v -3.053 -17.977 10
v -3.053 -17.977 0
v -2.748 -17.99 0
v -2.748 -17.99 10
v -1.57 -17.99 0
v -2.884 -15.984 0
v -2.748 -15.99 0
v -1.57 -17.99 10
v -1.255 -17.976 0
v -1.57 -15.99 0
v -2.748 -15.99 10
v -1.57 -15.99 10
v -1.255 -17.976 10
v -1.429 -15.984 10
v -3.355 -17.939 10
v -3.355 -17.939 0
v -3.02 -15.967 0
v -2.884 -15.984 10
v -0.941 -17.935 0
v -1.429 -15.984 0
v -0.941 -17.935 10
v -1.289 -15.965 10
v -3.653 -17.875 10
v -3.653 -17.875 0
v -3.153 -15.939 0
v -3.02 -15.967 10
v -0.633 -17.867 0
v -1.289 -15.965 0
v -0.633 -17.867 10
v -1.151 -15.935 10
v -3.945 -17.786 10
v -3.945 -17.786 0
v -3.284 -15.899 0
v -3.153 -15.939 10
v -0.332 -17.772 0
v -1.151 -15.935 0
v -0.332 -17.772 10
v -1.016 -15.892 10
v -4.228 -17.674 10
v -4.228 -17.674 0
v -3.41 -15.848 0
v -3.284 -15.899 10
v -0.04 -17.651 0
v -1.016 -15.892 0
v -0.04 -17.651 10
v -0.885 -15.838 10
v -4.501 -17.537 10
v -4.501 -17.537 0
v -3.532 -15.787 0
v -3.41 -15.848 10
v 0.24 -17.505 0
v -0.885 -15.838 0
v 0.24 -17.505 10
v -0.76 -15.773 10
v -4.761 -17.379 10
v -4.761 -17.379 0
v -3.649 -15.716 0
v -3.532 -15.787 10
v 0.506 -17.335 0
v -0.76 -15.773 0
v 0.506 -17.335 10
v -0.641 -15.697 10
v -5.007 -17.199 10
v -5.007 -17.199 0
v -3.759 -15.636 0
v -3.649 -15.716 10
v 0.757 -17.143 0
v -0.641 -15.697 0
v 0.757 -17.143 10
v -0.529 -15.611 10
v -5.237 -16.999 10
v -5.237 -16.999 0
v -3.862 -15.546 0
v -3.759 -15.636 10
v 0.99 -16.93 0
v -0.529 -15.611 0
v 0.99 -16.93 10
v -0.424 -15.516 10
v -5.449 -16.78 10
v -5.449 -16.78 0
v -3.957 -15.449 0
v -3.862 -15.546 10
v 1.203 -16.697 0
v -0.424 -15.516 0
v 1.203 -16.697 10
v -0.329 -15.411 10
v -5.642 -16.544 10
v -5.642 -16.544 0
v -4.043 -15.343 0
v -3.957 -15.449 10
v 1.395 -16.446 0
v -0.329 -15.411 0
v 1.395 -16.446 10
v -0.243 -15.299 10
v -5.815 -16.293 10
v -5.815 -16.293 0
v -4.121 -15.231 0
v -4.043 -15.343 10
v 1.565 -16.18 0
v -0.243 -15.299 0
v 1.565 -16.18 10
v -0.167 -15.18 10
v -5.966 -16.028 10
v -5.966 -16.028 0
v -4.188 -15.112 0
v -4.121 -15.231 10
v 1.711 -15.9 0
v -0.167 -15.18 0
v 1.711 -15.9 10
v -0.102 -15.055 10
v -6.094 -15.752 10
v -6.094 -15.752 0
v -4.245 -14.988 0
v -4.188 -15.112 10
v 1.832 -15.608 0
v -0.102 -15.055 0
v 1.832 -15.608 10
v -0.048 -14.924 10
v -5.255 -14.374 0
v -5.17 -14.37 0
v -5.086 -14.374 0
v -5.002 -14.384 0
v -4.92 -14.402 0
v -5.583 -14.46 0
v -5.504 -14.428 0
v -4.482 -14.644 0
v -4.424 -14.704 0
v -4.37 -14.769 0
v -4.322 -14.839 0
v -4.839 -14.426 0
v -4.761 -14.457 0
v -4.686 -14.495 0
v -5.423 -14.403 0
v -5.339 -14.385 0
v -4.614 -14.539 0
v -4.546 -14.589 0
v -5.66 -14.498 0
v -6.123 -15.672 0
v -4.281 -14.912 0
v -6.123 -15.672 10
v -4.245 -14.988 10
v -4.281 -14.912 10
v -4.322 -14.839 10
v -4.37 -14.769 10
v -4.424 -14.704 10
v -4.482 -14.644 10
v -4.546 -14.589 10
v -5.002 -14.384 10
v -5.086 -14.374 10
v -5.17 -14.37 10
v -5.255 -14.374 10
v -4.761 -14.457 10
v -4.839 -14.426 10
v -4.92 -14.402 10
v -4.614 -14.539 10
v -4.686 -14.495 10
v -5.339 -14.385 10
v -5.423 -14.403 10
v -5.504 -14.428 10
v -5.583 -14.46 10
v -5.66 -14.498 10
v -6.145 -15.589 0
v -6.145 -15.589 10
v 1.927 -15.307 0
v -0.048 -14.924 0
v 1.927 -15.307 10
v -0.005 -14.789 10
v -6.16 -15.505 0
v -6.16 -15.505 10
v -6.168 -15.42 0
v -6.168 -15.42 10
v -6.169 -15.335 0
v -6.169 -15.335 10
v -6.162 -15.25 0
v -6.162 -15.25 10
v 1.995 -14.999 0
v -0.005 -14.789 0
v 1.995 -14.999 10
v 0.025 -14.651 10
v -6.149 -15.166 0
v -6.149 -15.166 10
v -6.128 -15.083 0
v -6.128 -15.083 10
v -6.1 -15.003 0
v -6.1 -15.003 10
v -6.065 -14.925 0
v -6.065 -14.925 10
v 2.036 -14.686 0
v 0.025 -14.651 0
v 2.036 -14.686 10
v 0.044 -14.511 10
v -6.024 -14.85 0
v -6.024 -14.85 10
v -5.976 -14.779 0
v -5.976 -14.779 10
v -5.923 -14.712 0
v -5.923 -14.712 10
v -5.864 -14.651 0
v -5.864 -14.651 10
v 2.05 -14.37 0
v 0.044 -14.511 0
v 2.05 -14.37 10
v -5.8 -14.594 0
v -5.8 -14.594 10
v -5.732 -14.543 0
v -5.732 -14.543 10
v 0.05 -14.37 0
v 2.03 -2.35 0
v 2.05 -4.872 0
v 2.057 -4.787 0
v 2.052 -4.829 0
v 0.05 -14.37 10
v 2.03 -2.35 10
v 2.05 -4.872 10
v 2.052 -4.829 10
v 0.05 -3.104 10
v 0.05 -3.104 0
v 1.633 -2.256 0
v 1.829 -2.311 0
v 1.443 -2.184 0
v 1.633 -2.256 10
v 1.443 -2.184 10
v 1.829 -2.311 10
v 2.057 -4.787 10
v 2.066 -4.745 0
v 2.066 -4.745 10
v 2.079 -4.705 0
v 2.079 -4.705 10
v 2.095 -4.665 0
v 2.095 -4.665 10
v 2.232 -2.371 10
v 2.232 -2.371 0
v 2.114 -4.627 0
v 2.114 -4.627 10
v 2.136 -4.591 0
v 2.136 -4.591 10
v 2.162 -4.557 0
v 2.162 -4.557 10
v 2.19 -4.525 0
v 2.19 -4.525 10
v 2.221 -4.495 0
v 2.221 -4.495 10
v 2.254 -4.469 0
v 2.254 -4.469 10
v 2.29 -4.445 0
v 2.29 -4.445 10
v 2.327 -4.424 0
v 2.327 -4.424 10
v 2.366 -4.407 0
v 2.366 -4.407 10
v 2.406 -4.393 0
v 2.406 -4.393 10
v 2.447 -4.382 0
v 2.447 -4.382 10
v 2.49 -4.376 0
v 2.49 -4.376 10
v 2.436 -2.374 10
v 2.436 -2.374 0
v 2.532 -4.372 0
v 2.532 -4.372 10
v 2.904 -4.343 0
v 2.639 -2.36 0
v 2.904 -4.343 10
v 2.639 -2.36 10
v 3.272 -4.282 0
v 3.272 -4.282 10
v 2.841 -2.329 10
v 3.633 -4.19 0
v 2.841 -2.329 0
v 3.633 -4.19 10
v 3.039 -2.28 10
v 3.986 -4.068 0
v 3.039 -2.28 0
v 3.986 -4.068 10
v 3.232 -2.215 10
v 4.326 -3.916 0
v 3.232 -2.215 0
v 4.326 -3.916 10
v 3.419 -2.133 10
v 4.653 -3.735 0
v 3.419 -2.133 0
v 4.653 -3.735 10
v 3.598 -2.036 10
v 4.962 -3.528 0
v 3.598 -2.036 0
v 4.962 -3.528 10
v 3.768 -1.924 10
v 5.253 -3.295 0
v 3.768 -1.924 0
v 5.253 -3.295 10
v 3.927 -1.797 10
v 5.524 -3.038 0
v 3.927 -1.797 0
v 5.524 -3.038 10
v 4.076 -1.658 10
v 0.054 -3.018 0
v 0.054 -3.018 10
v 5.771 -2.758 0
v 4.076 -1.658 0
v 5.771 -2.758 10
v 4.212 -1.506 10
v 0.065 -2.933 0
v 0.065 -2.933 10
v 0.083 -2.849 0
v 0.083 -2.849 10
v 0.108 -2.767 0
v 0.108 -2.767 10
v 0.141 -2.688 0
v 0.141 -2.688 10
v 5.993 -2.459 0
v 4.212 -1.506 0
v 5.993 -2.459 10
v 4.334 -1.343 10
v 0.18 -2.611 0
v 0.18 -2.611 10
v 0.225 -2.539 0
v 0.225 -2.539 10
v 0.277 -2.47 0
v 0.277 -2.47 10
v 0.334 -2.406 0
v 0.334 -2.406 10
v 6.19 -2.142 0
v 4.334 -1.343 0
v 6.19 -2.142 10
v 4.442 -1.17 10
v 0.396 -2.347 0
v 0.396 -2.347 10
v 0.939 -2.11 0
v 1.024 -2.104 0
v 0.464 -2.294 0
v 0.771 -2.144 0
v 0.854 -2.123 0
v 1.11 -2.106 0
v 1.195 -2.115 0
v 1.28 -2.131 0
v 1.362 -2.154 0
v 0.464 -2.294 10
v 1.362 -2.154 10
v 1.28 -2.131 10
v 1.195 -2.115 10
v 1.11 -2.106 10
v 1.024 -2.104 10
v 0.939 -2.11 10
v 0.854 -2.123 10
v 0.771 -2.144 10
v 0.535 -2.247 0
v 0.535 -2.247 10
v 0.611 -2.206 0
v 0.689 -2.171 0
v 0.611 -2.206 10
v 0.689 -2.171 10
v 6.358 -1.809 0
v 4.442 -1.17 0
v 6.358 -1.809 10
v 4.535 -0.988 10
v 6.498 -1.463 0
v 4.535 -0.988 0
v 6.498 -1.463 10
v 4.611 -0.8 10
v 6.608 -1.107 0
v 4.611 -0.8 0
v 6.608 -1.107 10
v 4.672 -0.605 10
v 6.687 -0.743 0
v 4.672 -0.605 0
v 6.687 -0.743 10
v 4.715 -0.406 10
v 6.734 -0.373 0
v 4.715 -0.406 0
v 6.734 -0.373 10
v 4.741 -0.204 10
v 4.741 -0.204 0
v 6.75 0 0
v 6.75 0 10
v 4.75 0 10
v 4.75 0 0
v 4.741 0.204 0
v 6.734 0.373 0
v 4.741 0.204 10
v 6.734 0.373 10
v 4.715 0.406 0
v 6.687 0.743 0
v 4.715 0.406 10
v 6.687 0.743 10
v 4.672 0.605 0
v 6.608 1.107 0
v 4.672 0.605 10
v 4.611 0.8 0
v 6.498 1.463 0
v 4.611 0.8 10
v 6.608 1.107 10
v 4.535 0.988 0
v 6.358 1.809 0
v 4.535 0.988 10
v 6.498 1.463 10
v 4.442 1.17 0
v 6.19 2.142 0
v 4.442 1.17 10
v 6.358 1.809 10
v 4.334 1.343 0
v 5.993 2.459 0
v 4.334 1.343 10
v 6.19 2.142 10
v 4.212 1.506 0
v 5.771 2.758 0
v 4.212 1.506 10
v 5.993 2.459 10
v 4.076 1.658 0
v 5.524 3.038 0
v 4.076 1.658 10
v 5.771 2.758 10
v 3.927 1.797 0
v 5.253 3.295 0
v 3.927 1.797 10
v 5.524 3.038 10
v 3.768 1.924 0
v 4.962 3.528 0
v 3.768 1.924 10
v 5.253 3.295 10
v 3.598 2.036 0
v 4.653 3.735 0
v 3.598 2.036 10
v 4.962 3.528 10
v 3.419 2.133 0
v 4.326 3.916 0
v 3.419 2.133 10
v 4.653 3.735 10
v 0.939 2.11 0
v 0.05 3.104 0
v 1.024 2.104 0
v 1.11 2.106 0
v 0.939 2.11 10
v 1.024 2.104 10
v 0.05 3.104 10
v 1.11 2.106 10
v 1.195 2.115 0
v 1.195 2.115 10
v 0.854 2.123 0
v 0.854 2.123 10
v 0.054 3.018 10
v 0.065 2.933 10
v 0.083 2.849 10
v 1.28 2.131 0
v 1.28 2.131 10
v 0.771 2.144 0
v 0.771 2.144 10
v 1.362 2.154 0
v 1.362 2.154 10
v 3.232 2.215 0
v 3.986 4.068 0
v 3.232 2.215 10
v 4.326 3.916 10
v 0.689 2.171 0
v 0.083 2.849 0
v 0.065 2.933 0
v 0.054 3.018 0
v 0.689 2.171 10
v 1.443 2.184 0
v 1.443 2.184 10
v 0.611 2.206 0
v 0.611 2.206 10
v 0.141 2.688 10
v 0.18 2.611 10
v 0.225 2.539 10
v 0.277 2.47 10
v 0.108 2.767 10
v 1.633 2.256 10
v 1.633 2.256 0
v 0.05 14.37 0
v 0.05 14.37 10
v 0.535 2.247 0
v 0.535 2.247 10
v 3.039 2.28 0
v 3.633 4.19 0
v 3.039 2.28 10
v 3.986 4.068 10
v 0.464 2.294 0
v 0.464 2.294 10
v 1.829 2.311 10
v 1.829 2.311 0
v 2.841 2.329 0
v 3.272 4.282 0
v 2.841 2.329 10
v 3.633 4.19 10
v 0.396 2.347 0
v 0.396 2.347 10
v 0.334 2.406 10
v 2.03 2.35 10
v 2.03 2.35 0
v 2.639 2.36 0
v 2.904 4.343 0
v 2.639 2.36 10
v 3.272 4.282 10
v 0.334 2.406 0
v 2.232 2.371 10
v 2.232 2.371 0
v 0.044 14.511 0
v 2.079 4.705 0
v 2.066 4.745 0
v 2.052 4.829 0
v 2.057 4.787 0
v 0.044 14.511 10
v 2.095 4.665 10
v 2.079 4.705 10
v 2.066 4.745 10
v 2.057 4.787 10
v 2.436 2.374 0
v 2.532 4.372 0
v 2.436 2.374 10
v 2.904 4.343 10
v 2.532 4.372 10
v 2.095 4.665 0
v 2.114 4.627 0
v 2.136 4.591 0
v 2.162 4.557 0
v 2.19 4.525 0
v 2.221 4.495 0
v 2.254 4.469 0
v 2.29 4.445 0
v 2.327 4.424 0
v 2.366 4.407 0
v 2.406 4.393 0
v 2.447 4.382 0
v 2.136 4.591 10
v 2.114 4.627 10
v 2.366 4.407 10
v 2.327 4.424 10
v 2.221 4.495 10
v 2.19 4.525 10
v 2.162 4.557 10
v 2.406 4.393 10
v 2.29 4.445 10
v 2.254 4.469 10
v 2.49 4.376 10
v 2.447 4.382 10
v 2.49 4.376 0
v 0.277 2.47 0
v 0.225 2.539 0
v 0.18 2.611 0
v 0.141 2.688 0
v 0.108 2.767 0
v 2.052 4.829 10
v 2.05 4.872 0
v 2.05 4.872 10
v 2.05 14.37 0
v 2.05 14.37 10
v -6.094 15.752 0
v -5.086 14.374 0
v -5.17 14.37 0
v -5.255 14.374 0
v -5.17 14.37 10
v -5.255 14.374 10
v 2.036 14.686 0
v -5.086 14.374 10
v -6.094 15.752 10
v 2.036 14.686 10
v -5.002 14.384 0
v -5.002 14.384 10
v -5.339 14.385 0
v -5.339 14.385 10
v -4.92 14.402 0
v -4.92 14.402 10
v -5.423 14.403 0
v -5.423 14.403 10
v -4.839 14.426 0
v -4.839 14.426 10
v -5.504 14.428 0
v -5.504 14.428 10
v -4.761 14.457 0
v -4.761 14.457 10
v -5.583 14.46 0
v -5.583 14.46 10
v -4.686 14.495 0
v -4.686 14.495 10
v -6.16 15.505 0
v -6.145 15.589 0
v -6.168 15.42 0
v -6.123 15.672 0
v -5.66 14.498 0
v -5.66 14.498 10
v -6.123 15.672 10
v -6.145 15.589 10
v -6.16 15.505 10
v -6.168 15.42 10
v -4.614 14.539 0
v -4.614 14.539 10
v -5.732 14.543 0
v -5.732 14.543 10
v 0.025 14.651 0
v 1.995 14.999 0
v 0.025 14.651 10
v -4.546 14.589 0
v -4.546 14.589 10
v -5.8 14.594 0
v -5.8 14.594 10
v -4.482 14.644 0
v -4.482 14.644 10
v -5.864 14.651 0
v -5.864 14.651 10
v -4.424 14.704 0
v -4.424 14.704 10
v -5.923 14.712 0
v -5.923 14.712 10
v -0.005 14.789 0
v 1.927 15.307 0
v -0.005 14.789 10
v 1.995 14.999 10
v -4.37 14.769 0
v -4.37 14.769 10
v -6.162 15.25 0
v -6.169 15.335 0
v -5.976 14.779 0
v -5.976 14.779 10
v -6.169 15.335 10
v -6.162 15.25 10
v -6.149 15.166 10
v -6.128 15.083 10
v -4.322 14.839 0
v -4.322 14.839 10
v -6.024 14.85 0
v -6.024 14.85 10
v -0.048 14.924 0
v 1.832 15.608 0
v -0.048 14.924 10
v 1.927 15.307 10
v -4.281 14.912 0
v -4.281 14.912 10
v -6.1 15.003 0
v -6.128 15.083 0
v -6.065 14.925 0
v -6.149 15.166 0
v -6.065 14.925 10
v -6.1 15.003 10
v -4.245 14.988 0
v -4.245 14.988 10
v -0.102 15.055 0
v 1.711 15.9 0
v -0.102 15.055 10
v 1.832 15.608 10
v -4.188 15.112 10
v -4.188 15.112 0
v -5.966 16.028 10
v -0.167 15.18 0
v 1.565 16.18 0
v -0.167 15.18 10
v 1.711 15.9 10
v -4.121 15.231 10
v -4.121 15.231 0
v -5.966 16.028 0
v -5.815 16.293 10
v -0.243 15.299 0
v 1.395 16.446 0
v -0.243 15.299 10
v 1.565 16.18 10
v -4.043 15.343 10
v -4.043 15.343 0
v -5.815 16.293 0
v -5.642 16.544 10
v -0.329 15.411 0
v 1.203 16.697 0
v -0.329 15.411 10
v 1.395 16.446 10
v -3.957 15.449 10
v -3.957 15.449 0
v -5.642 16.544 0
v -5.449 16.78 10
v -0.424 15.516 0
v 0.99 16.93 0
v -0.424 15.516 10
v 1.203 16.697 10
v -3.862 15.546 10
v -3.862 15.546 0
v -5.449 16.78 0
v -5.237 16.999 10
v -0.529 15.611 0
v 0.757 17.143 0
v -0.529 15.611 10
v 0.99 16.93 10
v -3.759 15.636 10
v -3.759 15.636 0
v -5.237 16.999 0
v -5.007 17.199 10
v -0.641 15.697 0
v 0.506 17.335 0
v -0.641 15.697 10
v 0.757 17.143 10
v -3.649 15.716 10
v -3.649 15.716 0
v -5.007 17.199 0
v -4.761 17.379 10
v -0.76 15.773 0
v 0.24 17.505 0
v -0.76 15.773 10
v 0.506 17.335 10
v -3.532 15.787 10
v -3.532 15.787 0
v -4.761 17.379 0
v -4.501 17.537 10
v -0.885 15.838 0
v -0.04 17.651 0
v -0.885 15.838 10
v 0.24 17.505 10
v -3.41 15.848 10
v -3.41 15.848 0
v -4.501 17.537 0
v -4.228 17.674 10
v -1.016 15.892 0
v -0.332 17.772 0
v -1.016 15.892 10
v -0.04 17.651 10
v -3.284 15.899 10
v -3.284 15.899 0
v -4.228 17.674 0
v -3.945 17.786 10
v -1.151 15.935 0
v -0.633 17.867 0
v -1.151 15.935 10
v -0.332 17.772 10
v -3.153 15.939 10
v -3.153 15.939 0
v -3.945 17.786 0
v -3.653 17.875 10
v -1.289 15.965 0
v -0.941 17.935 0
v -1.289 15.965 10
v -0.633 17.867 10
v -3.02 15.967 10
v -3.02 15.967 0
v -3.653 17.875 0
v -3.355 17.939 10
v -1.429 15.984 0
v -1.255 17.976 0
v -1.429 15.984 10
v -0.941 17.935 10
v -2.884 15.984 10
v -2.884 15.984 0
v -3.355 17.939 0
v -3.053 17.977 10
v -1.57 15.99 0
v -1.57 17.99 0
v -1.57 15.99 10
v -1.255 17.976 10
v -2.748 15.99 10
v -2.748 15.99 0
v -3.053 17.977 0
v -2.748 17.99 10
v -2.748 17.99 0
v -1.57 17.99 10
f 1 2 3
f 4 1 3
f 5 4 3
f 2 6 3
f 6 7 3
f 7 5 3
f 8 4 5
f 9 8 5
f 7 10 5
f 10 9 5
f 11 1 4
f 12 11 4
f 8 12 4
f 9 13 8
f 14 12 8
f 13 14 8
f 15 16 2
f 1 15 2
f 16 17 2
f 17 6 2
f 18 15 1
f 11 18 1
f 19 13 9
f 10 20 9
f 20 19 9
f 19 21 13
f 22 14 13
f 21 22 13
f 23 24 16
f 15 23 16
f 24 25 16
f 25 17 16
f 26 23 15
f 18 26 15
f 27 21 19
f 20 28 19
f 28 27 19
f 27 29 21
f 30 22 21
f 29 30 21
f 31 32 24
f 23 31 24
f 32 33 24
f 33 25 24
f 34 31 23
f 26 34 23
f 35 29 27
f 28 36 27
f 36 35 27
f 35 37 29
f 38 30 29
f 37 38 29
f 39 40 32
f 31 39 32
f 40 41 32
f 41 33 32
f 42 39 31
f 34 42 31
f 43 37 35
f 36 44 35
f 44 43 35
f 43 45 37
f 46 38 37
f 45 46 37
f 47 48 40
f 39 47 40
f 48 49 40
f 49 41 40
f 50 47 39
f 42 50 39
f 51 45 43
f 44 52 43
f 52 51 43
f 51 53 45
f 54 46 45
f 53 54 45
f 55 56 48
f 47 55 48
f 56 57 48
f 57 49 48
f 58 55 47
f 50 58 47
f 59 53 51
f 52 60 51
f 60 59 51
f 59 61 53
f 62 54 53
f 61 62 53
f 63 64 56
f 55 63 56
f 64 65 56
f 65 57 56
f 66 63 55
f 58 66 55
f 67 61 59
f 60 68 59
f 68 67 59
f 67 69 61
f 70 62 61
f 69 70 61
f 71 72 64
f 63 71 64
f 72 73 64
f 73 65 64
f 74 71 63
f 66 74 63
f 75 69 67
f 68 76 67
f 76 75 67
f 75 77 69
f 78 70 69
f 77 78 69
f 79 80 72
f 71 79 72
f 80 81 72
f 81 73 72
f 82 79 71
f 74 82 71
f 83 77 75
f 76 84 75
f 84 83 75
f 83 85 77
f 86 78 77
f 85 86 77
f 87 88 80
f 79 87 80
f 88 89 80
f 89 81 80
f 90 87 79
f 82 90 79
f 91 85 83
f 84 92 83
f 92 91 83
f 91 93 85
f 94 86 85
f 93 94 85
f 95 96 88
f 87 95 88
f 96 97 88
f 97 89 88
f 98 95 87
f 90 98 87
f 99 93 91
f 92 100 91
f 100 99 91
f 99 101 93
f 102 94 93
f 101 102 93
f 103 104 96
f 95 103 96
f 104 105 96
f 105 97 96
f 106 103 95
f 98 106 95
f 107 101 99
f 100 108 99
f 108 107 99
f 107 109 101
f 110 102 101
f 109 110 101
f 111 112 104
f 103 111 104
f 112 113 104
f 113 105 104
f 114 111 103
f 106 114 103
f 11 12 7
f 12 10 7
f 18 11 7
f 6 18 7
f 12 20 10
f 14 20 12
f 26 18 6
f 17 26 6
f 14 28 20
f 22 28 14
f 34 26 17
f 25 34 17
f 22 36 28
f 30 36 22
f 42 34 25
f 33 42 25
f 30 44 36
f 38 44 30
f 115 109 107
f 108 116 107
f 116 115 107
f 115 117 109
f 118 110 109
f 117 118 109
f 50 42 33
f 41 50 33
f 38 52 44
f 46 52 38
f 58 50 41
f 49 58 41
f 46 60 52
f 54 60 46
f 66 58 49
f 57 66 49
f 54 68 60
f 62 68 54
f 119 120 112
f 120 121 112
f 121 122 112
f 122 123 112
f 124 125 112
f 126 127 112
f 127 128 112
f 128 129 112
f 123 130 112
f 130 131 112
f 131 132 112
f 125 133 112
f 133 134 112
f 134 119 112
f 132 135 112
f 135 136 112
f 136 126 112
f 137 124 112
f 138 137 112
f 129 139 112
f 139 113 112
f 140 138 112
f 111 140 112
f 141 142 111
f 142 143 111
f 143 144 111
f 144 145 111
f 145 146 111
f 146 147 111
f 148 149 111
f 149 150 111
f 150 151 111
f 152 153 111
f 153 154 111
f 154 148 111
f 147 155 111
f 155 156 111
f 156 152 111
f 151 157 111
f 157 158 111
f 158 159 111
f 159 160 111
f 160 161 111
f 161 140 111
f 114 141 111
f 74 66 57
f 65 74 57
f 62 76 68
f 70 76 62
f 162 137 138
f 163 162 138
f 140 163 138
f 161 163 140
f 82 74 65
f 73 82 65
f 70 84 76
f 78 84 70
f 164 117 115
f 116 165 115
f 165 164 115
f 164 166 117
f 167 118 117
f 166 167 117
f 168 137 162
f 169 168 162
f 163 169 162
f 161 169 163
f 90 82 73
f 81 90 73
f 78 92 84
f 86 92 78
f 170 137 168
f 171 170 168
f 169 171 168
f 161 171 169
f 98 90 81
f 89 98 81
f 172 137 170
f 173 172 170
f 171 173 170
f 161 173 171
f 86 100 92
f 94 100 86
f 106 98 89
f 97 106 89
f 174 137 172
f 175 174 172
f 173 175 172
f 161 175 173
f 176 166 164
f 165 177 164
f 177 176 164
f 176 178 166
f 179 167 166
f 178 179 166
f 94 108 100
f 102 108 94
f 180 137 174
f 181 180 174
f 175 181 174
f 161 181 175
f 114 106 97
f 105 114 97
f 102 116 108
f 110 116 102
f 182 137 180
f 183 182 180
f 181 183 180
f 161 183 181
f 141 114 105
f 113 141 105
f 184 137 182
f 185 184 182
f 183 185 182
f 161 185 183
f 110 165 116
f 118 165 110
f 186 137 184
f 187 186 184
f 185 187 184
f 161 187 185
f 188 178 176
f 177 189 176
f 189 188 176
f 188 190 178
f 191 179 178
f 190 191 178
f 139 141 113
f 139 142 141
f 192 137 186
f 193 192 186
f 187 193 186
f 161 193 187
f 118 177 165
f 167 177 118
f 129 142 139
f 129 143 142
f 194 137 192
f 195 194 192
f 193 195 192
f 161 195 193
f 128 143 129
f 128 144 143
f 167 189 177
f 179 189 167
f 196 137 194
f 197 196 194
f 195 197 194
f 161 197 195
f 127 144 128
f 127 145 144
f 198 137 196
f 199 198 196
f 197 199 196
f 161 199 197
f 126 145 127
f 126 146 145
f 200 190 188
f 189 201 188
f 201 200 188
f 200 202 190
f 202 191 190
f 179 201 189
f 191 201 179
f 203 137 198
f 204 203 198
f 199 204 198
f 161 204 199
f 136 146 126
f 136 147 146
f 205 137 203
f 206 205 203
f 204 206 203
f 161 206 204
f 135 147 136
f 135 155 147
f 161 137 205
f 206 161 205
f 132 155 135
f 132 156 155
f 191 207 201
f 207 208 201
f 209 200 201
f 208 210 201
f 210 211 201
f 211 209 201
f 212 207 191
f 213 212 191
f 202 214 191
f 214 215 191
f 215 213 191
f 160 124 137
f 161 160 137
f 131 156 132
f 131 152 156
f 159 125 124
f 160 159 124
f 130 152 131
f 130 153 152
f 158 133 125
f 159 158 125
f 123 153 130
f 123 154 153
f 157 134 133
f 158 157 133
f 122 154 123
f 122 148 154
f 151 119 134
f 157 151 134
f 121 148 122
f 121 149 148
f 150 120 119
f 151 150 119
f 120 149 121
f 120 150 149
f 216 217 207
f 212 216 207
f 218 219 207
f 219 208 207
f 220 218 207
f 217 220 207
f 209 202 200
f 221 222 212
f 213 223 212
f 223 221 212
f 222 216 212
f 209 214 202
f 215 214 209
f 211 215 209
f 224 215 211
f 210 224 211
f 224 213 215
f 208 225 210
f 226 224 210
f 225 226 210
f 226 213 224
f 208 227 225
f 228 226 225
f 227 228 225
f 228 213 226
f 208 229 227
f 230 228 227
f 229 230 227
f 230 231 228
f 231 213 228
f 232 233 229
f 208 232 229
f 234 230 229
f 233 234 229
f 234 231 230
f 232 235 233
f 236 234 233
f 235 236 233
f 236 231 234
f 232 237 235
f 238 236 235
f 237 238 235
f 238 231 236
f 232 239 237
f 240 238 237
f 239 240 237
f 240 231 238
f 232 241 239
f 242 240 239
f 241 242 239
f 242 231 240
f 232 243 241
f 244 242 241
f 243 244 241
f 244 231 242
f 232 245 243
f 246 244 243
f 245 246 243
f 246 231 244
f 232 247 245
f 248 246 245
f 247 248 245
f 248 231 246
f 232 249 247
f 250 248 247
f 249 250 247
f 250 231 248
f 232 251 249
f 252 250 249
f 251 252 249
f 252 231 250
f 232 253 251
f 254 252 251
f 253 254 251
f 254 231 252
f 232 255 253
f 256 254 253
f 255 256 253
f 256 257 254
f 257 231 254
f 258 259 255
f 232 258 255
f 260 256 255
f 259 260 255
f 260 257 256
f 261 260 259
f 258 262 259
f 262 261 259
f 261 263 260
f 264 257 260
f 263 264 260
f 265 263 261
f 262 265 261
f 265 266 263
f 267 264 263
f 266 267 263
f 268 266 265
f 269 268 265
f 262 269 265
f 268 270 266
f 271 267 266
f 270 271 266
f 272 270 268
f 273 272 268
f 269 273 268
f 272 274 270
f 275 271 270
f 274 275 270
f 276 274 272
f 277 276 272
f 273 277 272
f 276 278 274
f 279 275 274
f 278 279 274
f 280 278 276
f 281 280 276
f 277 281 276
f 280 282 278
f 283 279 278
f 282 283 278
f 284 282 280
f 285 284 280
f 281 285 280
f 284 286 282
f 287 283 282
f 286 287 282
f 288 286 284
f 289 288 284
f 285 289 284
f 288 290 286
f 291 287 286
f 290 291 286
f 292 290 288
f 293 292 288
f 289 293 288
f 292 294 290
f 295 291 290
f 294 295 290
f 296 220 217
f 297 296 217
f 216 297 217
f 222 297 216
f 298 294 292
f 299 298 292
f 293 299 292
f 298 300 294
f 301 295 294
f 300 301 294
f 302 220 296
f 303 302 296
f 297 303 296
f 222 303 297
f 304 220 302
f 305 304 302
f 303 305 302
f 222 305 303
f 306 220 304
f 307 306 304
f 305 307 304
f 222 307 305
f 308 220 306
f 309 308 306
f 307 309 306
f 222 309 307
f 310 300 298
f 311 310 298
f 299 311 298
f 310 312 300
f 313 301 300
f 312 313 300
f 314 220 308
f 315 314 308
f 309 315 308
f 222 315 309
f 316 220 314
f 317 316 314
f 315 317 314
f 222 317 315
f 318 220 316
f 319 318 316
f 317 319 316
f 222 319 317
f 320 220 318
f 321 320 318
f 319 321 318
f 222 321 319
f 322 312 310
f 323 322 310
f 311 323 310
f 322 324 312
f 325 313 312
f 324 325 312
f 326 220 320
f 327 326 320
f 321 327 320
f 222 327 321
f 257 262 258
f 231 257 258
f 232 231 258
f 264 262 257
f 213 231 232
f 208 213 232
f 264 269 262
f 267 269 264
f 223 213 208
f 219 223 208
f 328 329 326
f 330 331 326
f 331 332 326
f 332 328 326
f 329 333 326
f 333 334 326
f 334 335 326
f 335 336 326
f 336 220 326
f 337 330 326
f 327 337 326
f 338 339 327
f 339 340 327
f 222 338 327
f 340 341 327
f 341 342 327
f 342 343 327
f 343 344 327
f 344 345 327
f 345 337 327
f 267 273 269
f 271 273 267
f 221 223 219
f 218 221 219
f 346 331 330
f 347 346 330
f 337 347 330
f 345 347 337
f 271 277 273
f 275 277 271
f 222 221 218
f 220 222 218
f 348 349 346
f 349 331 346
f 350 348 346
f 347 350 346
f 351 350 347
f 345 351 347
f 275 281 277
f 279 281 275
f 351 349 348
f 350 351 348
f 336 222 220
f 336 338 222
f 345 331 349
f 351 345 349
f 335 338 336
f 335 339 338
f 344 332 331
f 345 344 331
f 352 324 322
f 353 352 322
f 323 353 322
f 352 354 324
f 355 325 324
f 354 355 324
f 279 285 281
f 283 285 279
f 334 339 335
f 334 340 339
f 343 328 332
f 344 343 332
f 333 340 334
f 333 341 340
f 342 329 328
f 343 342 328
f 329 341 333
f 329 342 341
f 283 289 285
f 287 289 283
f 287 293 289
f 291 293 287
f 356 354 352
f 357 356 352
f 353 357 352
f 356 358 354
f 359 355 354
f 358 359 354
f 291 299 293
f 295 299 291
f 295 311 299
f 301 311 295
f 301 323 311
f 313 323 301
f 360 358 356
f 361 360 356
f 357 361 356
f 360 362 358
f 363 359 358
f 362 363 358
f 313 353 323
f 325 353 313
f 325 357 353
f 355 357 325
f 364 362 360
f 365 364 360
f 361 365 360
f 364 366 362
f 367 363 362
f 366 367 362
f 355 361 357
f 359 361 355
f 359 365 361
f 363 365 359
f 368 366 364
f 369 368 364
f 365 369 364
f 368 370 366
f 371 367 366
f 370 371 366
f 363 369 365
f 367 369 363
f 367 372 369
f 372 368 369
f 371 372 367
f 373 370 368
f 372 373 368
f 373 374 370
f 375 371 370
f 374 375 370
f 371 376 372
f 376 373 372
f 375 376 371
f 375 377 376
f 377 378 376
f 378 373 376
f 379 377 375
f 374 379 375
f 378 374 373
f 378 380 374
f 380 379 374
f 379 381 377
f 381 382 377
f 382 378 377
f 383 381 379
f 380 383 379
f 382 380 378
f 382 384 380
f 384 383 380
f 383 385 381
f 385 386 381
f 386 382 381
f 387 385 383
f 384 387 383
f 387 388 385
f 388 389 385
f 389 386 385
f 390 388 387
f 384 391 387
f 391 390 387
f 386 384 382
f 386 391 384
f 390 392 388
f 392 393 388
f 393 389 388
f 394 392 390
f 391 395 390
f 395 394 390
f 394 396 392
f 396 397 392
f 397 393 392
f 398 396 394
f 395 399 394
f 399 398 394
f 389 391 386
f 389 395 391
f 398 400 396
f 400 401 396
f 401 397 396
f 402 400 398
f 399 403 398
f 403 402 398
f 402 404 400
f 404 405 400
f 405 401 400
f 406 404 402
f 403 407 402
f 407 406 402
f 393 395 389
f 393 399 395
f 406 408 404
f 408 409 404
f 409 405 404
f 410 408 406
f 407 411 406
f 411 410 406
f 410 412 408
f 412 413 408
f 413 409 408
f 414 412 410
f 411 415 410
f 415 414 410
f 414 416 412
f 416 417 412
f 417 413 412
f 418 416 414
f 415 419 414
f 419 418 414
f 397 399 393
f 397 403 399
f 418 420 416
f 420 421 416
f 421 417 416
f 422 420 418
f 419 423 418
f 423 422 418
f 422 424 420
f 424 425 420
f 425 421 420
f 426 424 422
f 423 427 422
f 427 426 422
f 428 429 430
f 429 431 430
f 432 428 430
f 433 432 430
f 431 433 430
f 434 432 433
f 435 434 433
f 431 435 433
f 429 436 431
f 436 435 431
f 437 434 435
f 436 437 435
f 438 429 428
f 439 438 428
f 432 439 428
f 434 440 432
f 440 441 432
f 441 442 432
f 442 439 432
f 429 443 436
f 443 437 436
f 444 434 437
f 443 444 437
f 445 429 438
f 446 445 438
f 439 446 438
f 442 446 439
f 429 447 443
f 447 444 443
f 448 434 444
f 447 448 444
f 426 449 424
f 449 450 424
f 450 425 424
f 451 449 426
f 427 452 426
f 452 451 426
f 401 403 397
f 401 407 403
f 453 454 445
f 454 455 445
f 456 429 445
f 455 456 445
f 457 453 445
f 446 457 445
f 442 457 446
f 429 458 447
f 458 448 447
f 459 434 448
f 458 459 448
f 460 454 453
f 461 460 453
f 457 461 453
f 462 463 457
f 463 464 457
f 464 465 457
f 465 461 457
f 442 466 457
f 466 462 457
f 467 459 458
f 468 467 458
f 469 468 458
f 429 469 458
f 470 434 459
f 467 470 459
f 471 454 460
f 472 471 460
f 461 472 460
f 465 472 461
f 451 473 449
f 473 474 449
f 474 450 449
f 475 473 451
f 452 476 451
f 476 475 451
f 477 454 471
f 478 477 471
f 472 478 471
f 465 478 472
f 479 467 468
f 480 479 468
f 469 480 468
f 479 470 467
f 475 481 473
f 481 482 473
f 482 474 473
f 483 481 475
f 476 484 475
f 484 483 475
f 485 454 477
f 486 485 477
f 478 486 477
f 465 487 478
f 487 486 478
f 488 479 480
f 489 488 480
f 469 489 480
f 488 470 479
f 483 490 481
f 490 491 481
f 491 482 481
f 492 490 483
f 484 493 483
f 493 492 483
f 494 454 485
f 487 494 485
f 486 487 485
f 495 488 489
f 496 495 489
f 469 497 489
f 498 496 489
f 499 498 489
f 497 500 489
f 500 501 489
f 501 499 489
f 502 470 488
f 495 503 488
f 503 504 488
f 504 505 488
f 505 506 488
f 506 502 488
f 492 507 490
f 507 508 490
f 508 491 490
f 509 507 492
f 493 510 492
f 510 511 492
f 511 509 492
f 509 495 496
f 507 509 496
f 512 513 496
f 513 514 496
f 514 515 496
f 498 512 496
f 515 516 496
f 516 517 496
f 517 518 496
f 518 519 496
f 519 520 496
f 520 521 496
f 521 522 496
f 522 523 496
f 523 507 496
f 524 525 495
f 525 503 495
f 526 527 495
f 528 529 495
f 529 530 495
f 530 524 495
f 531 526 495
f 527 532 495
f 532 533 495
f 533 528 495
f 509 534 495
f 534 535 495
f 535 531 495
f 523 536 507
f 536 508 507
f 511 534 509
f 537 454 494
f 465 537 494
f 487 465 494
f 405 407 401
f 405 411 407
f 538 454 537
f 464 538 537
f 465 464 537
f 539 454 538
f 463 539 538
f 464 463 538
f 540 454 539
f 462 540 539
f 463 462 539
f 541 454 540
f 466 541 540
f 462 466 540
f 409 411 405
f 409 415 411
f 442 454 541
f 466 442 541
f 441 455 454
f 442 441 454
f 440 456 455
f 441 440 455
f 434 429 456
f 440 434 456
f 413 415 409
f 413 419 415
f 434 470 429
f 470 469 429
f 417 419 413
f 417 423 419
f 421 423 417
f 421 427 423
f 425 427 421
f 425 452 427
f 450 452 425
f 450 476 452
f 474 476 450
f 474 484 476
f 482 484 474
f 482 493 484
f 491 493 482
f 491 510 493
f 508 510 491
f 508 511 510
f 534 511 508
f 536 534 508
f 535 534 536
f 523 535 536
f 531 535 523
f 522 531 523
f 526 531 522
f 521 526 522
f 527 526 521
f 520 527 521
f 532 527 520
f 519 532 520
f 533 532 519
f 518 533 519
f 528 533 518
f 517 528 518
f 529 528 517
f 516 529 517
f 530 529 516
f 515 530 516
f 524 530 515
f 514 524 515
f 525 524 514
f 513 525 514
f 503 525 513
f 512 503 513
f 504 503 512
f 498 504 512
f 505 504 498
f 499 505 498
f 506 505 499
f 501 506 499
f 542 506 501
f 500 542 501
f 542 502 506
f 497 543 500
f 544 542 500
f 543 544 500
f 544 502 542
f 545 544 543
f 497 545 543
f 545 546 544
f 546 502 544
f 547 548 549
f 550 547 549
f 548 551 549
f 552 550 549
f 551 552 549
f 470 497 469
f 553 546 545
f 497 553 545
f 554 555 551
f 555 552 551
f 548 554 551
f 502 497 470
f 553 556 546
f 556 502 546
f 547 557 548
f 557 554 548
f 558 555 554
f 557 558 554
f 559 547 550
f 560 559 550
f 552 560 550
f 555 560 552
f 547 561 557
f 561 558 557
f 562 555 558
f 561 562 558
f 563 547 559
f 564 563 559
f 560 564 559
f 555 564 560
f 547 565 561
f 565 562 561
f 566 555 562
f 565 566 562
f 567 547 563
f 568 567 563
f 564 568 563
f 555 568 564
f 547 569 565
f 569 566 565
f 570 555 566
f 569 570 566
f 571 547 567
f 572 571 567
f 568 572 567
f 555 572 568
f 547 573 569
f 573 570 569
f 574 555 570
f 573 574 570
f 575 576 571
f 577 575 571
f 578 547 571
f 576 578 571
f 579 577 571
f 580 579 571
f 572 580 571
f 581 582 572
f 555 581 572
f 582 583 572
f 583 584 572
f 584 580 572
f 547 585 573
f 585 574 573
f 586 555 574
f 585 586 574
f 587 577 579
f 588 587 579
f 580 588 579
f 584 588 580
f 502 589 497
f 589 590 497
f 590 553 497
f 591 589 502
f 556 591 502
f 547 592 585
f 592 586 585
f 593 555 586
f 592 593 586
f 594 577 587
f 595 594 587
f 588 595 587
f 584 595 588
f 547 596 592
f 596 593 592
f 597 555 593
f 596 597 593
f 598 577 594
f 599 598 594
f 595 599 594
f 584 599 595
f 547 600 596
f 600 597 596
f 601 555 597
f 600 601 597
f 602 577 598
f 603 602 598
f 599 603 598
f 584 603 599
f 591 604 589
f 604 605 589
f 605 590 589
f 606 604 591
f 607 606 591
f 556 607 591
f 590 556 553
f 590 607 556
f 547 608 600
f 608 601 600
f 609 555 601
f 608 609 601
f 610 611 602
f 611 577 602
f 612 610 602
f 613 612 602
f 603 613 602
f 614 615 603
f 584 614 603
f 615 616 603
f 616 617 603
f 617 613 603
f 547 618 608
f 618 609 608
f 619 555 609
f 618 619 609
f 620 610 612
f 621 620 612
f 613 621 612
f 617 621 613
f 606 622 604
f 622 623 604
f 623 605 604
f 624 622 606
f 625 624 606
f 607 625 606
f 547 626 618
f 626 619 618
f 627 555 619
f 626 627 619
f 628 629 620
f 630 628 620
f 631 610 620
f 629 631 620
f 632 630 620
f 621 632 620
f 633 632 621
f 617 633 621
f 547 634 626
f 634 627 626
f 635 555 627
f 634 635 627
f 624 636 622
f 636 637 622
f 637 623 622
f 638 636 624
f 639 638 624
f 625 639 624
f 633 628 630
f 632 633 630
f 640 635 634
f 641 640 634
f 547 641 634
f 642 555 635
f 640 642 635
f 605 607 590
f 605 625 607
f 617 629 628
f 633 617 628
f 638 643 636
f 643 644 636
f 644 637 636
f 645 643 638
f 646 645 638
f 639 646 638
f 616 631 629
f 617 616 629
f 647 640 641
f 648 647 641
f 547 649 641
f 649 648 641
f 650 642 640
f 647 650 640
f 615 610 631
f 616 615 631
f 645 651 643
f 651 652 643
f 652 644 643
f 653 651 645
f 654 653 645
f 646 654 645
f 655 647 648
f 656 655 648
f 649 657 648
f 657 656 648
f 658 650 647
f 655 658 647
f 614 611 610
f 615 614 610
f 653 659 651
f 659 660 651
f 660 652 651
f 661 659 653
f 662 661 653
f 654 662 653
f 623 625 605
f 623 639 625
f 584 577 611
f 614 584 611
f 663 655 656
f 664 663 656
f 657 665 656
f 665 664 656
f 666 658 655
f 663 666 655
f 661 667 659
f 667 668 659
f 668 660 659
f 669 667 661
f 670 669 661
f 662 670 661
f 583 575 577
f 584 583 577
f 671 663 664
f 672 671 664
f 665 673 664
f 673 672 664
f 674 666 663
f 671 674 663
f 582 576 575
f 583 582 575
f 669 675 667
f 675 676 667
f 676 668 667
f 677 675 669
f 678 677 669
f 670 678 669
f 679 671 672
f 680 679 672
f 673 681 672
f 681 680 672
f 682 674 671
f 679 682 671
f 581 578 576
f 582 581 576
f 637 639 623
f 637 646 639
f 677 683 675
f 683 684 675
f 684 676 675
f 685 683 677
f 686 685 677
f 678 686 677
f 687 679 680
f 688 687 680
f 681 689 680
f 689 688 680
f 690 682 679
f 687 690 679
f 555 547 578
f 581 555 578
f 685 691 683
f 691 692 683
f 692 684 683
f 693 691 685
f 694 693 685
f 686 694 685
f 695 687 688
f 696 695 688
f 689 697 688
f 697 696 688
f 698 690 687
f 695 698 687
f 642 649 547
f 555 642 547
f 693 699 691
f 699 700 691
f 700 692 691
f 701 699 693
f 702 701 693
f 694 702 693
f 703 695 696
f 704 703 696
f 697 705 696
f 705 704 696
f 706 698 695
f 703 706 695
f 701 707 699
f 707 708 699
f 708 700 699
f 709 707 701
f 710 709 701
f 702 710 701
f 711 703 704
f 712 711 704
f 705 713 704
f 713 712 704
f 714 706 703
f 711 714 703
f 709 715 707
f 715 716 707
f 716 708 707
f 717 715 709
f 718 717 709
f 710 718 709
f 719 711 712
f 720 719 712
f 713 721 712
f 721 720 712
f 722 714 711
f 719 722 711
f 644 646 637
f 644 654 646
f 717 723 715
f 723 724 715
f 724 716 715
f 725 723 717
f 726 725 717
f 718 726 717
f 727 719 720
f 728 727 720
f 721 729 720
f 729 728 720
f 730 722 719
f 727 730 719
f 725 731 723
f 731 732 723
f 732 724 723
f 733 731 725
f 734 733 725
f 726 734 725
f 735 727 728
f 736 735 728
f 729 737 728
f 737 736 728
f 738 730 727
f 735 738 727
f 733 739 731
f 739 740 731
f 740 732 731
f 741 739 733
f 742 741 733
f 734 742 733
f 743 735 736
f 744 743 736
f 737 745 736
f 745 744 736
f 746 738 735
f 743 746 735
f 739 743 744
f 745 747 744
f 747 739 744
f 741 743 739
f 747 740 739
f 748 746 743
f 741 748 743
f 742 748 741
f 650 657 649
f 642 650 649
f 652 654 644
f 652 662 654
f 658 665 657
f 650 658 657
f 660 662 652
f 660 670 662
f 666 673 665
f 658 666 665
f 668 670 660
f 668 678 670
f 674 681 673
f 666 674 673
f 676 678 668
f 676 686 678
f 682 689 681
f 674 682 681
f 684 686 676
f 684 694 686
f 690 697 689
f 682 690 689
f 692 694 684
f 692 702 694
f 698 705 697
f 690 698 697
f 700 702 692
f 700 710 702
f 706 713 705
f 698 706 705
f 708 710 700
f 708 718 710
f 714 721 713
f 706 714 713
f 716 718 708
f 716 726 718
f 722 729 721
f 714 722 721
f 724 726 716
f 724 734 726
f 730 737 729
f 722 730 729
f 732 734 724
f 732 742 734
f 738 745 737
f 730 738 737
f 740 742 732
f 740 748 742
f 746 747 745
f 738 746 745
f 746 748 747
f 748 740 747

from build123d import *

# Parameters (mm, degrees)
BOSS_EXTRUDE1_DEPTH = 10
FILLET1_R           = 1
FILLET2_R           = 0.5
FILLET3_R           = 1


with BuildPart() as part:
    # Sketch1 → Boss-Extrude1 (new body)
    with BuildSketch(Plane.XY):
        with BuildLine():
            Line((0.05, 14.37), (0.05, 3.706076092))
            ThreePointArc((0.05, 3.706076092), (1.009905384, 4.156578123), (2.05, 4.362911872))
            Line((2.05, 4.362911872), (2.05, 14.37))
            ThreePointArc((2.05, 14.37), (0.989726548, 16.929726548), (-1.57, 17.99))
            Line((-1.57, 17.99), (-2.748, 17.99))
            ThreePointArc((-2.748, 17.99), (-5.307726548, 16.929726548), (-6.368, 14.37))
            Line((-6.368, 14.37), (-4.368, 14.37))
            ThreePointArc((-4.368, 14.37), (-3.893512986, 15.515512986), (-2.748, 15.99))
            Line((-2.748, 15.99), (-1.57, 15.99))
            ThreePointArc((-1.57, 15.99), (-0.424487014, 15.515512986), (0.05, 14.37))
        make_face()
        with BuildLine():
            Line((0.05, -0.484767986), (0.05, -3.706076092))
            ThreePointArc((0.05, -3.706076092), (1.009905384, -4.156578123), (2.05, -4.362911872))
            Line((2.05, -4.362911872), (2.05, -2.352658071))
            ThreePointArc((2.05, -2.352658071), (0.753926793, -1.73572655), (0.05, -0.484767986))
        make_face()
        with BuildLine():
            ThreePointArc((2.05, 4.362911872), (1.009905384, 4.156578123), (0.05, 3.706076092))
            Line((0.05, 3.706076092), (0.05, 0.484767986))
            ThreePointArc((0.05, 0.484767986), (0.753926793, 1.73572655), (2.05, 2.352658071))
            Line((2.05, 2.352658071), (2.05, 4.362911872))
        make_face()
        with BuildLine():
            Line((2.05, -2.352658071), (2.05, -4.362911872))
            ThreePointArc((2.05, -4.362911872), (5.351470225, -3.206438835), (6.75, 0))
            ThreePointArc((6.75, 0), (5.351470225, 3.206438835), (2.05, 4.362911872))
            Line((2.05, 4.362911872), (2.05, 2.352658071))
            ThreePointArc((2.05, 2.352658071), (3.935248378, 1.790600458), (4.75, 0))
            ThreePointArc((4.75, 0), (3.935248378, -1.790600458), (2.05, -2.352658071))
        make_face()
        with BuildLine():
            Line((-1.57, -15.99), (-2.748, -15.99))
            ThreePointArc((-2.748, -15.99), (-3.893512986, -15.515512986), (-4.368, -14.37))
            Line((-4.368, -14.37), (-6.368, -14.37))
            ThreePointArc((-6.368, -14.37), (-5.307726548, -16.929726548), (-2.748, -17.99))
            Line((-2.748, -17.99), (-1.57, -17.99))
            ThreePointArc((-1.57, -17.99), (0.989726548, -16.929726548), (2.05, -14.37))
            Line((2.05, -14.37), (2.05, -4.362911872))
            ThreePointArc((2.05, -4.362911872), (1.009905384, -4.156578123), (0.05, -3.706076092))
            Line((0.05, -3.706076092), (0.05, -14.37))
            ThreePointArc((0.05, -14.37), (-0.424487014, -15.515512986), (-1.57, -15.99))
        make_face()
    extrude(amount=BOSS_EXTRUDE1_DEPTH)

    # Fillet1
    fillet1_edges = [part.edges().sort_by_distance(p)[0] for p in [
        (0.05, -0.484767986, 5),
        (0.05, 0.484767986, 5),
    ]]
    fillet(fillet1_edges, radius=FILLET1_R)

    # Fillet2
    fillet2_edges = [part.edges().sort_by_distance(p)[0] for p in [
        (2.05, 4.362911872, 5),
        (2.05, -4.362911872, 5),
    ]]
    fillet(fillet2_edges, radius=FILLET2_R)

    # Fillet3
    fillet3_edges = [part.edges().sort_by_distance(p)[0] for p in [
        (-6.368, 14.37, 5),
        (-4.368, 14.37, 5),
        (-6.368, -14.37, 5),
        (-4.368, -14.37, 5),
    ]]
    fillet(fillet3_edges, radius=FILLET3_R - 0.0001)  # a hair under: the kernel refuses the full size


solid = part.part
